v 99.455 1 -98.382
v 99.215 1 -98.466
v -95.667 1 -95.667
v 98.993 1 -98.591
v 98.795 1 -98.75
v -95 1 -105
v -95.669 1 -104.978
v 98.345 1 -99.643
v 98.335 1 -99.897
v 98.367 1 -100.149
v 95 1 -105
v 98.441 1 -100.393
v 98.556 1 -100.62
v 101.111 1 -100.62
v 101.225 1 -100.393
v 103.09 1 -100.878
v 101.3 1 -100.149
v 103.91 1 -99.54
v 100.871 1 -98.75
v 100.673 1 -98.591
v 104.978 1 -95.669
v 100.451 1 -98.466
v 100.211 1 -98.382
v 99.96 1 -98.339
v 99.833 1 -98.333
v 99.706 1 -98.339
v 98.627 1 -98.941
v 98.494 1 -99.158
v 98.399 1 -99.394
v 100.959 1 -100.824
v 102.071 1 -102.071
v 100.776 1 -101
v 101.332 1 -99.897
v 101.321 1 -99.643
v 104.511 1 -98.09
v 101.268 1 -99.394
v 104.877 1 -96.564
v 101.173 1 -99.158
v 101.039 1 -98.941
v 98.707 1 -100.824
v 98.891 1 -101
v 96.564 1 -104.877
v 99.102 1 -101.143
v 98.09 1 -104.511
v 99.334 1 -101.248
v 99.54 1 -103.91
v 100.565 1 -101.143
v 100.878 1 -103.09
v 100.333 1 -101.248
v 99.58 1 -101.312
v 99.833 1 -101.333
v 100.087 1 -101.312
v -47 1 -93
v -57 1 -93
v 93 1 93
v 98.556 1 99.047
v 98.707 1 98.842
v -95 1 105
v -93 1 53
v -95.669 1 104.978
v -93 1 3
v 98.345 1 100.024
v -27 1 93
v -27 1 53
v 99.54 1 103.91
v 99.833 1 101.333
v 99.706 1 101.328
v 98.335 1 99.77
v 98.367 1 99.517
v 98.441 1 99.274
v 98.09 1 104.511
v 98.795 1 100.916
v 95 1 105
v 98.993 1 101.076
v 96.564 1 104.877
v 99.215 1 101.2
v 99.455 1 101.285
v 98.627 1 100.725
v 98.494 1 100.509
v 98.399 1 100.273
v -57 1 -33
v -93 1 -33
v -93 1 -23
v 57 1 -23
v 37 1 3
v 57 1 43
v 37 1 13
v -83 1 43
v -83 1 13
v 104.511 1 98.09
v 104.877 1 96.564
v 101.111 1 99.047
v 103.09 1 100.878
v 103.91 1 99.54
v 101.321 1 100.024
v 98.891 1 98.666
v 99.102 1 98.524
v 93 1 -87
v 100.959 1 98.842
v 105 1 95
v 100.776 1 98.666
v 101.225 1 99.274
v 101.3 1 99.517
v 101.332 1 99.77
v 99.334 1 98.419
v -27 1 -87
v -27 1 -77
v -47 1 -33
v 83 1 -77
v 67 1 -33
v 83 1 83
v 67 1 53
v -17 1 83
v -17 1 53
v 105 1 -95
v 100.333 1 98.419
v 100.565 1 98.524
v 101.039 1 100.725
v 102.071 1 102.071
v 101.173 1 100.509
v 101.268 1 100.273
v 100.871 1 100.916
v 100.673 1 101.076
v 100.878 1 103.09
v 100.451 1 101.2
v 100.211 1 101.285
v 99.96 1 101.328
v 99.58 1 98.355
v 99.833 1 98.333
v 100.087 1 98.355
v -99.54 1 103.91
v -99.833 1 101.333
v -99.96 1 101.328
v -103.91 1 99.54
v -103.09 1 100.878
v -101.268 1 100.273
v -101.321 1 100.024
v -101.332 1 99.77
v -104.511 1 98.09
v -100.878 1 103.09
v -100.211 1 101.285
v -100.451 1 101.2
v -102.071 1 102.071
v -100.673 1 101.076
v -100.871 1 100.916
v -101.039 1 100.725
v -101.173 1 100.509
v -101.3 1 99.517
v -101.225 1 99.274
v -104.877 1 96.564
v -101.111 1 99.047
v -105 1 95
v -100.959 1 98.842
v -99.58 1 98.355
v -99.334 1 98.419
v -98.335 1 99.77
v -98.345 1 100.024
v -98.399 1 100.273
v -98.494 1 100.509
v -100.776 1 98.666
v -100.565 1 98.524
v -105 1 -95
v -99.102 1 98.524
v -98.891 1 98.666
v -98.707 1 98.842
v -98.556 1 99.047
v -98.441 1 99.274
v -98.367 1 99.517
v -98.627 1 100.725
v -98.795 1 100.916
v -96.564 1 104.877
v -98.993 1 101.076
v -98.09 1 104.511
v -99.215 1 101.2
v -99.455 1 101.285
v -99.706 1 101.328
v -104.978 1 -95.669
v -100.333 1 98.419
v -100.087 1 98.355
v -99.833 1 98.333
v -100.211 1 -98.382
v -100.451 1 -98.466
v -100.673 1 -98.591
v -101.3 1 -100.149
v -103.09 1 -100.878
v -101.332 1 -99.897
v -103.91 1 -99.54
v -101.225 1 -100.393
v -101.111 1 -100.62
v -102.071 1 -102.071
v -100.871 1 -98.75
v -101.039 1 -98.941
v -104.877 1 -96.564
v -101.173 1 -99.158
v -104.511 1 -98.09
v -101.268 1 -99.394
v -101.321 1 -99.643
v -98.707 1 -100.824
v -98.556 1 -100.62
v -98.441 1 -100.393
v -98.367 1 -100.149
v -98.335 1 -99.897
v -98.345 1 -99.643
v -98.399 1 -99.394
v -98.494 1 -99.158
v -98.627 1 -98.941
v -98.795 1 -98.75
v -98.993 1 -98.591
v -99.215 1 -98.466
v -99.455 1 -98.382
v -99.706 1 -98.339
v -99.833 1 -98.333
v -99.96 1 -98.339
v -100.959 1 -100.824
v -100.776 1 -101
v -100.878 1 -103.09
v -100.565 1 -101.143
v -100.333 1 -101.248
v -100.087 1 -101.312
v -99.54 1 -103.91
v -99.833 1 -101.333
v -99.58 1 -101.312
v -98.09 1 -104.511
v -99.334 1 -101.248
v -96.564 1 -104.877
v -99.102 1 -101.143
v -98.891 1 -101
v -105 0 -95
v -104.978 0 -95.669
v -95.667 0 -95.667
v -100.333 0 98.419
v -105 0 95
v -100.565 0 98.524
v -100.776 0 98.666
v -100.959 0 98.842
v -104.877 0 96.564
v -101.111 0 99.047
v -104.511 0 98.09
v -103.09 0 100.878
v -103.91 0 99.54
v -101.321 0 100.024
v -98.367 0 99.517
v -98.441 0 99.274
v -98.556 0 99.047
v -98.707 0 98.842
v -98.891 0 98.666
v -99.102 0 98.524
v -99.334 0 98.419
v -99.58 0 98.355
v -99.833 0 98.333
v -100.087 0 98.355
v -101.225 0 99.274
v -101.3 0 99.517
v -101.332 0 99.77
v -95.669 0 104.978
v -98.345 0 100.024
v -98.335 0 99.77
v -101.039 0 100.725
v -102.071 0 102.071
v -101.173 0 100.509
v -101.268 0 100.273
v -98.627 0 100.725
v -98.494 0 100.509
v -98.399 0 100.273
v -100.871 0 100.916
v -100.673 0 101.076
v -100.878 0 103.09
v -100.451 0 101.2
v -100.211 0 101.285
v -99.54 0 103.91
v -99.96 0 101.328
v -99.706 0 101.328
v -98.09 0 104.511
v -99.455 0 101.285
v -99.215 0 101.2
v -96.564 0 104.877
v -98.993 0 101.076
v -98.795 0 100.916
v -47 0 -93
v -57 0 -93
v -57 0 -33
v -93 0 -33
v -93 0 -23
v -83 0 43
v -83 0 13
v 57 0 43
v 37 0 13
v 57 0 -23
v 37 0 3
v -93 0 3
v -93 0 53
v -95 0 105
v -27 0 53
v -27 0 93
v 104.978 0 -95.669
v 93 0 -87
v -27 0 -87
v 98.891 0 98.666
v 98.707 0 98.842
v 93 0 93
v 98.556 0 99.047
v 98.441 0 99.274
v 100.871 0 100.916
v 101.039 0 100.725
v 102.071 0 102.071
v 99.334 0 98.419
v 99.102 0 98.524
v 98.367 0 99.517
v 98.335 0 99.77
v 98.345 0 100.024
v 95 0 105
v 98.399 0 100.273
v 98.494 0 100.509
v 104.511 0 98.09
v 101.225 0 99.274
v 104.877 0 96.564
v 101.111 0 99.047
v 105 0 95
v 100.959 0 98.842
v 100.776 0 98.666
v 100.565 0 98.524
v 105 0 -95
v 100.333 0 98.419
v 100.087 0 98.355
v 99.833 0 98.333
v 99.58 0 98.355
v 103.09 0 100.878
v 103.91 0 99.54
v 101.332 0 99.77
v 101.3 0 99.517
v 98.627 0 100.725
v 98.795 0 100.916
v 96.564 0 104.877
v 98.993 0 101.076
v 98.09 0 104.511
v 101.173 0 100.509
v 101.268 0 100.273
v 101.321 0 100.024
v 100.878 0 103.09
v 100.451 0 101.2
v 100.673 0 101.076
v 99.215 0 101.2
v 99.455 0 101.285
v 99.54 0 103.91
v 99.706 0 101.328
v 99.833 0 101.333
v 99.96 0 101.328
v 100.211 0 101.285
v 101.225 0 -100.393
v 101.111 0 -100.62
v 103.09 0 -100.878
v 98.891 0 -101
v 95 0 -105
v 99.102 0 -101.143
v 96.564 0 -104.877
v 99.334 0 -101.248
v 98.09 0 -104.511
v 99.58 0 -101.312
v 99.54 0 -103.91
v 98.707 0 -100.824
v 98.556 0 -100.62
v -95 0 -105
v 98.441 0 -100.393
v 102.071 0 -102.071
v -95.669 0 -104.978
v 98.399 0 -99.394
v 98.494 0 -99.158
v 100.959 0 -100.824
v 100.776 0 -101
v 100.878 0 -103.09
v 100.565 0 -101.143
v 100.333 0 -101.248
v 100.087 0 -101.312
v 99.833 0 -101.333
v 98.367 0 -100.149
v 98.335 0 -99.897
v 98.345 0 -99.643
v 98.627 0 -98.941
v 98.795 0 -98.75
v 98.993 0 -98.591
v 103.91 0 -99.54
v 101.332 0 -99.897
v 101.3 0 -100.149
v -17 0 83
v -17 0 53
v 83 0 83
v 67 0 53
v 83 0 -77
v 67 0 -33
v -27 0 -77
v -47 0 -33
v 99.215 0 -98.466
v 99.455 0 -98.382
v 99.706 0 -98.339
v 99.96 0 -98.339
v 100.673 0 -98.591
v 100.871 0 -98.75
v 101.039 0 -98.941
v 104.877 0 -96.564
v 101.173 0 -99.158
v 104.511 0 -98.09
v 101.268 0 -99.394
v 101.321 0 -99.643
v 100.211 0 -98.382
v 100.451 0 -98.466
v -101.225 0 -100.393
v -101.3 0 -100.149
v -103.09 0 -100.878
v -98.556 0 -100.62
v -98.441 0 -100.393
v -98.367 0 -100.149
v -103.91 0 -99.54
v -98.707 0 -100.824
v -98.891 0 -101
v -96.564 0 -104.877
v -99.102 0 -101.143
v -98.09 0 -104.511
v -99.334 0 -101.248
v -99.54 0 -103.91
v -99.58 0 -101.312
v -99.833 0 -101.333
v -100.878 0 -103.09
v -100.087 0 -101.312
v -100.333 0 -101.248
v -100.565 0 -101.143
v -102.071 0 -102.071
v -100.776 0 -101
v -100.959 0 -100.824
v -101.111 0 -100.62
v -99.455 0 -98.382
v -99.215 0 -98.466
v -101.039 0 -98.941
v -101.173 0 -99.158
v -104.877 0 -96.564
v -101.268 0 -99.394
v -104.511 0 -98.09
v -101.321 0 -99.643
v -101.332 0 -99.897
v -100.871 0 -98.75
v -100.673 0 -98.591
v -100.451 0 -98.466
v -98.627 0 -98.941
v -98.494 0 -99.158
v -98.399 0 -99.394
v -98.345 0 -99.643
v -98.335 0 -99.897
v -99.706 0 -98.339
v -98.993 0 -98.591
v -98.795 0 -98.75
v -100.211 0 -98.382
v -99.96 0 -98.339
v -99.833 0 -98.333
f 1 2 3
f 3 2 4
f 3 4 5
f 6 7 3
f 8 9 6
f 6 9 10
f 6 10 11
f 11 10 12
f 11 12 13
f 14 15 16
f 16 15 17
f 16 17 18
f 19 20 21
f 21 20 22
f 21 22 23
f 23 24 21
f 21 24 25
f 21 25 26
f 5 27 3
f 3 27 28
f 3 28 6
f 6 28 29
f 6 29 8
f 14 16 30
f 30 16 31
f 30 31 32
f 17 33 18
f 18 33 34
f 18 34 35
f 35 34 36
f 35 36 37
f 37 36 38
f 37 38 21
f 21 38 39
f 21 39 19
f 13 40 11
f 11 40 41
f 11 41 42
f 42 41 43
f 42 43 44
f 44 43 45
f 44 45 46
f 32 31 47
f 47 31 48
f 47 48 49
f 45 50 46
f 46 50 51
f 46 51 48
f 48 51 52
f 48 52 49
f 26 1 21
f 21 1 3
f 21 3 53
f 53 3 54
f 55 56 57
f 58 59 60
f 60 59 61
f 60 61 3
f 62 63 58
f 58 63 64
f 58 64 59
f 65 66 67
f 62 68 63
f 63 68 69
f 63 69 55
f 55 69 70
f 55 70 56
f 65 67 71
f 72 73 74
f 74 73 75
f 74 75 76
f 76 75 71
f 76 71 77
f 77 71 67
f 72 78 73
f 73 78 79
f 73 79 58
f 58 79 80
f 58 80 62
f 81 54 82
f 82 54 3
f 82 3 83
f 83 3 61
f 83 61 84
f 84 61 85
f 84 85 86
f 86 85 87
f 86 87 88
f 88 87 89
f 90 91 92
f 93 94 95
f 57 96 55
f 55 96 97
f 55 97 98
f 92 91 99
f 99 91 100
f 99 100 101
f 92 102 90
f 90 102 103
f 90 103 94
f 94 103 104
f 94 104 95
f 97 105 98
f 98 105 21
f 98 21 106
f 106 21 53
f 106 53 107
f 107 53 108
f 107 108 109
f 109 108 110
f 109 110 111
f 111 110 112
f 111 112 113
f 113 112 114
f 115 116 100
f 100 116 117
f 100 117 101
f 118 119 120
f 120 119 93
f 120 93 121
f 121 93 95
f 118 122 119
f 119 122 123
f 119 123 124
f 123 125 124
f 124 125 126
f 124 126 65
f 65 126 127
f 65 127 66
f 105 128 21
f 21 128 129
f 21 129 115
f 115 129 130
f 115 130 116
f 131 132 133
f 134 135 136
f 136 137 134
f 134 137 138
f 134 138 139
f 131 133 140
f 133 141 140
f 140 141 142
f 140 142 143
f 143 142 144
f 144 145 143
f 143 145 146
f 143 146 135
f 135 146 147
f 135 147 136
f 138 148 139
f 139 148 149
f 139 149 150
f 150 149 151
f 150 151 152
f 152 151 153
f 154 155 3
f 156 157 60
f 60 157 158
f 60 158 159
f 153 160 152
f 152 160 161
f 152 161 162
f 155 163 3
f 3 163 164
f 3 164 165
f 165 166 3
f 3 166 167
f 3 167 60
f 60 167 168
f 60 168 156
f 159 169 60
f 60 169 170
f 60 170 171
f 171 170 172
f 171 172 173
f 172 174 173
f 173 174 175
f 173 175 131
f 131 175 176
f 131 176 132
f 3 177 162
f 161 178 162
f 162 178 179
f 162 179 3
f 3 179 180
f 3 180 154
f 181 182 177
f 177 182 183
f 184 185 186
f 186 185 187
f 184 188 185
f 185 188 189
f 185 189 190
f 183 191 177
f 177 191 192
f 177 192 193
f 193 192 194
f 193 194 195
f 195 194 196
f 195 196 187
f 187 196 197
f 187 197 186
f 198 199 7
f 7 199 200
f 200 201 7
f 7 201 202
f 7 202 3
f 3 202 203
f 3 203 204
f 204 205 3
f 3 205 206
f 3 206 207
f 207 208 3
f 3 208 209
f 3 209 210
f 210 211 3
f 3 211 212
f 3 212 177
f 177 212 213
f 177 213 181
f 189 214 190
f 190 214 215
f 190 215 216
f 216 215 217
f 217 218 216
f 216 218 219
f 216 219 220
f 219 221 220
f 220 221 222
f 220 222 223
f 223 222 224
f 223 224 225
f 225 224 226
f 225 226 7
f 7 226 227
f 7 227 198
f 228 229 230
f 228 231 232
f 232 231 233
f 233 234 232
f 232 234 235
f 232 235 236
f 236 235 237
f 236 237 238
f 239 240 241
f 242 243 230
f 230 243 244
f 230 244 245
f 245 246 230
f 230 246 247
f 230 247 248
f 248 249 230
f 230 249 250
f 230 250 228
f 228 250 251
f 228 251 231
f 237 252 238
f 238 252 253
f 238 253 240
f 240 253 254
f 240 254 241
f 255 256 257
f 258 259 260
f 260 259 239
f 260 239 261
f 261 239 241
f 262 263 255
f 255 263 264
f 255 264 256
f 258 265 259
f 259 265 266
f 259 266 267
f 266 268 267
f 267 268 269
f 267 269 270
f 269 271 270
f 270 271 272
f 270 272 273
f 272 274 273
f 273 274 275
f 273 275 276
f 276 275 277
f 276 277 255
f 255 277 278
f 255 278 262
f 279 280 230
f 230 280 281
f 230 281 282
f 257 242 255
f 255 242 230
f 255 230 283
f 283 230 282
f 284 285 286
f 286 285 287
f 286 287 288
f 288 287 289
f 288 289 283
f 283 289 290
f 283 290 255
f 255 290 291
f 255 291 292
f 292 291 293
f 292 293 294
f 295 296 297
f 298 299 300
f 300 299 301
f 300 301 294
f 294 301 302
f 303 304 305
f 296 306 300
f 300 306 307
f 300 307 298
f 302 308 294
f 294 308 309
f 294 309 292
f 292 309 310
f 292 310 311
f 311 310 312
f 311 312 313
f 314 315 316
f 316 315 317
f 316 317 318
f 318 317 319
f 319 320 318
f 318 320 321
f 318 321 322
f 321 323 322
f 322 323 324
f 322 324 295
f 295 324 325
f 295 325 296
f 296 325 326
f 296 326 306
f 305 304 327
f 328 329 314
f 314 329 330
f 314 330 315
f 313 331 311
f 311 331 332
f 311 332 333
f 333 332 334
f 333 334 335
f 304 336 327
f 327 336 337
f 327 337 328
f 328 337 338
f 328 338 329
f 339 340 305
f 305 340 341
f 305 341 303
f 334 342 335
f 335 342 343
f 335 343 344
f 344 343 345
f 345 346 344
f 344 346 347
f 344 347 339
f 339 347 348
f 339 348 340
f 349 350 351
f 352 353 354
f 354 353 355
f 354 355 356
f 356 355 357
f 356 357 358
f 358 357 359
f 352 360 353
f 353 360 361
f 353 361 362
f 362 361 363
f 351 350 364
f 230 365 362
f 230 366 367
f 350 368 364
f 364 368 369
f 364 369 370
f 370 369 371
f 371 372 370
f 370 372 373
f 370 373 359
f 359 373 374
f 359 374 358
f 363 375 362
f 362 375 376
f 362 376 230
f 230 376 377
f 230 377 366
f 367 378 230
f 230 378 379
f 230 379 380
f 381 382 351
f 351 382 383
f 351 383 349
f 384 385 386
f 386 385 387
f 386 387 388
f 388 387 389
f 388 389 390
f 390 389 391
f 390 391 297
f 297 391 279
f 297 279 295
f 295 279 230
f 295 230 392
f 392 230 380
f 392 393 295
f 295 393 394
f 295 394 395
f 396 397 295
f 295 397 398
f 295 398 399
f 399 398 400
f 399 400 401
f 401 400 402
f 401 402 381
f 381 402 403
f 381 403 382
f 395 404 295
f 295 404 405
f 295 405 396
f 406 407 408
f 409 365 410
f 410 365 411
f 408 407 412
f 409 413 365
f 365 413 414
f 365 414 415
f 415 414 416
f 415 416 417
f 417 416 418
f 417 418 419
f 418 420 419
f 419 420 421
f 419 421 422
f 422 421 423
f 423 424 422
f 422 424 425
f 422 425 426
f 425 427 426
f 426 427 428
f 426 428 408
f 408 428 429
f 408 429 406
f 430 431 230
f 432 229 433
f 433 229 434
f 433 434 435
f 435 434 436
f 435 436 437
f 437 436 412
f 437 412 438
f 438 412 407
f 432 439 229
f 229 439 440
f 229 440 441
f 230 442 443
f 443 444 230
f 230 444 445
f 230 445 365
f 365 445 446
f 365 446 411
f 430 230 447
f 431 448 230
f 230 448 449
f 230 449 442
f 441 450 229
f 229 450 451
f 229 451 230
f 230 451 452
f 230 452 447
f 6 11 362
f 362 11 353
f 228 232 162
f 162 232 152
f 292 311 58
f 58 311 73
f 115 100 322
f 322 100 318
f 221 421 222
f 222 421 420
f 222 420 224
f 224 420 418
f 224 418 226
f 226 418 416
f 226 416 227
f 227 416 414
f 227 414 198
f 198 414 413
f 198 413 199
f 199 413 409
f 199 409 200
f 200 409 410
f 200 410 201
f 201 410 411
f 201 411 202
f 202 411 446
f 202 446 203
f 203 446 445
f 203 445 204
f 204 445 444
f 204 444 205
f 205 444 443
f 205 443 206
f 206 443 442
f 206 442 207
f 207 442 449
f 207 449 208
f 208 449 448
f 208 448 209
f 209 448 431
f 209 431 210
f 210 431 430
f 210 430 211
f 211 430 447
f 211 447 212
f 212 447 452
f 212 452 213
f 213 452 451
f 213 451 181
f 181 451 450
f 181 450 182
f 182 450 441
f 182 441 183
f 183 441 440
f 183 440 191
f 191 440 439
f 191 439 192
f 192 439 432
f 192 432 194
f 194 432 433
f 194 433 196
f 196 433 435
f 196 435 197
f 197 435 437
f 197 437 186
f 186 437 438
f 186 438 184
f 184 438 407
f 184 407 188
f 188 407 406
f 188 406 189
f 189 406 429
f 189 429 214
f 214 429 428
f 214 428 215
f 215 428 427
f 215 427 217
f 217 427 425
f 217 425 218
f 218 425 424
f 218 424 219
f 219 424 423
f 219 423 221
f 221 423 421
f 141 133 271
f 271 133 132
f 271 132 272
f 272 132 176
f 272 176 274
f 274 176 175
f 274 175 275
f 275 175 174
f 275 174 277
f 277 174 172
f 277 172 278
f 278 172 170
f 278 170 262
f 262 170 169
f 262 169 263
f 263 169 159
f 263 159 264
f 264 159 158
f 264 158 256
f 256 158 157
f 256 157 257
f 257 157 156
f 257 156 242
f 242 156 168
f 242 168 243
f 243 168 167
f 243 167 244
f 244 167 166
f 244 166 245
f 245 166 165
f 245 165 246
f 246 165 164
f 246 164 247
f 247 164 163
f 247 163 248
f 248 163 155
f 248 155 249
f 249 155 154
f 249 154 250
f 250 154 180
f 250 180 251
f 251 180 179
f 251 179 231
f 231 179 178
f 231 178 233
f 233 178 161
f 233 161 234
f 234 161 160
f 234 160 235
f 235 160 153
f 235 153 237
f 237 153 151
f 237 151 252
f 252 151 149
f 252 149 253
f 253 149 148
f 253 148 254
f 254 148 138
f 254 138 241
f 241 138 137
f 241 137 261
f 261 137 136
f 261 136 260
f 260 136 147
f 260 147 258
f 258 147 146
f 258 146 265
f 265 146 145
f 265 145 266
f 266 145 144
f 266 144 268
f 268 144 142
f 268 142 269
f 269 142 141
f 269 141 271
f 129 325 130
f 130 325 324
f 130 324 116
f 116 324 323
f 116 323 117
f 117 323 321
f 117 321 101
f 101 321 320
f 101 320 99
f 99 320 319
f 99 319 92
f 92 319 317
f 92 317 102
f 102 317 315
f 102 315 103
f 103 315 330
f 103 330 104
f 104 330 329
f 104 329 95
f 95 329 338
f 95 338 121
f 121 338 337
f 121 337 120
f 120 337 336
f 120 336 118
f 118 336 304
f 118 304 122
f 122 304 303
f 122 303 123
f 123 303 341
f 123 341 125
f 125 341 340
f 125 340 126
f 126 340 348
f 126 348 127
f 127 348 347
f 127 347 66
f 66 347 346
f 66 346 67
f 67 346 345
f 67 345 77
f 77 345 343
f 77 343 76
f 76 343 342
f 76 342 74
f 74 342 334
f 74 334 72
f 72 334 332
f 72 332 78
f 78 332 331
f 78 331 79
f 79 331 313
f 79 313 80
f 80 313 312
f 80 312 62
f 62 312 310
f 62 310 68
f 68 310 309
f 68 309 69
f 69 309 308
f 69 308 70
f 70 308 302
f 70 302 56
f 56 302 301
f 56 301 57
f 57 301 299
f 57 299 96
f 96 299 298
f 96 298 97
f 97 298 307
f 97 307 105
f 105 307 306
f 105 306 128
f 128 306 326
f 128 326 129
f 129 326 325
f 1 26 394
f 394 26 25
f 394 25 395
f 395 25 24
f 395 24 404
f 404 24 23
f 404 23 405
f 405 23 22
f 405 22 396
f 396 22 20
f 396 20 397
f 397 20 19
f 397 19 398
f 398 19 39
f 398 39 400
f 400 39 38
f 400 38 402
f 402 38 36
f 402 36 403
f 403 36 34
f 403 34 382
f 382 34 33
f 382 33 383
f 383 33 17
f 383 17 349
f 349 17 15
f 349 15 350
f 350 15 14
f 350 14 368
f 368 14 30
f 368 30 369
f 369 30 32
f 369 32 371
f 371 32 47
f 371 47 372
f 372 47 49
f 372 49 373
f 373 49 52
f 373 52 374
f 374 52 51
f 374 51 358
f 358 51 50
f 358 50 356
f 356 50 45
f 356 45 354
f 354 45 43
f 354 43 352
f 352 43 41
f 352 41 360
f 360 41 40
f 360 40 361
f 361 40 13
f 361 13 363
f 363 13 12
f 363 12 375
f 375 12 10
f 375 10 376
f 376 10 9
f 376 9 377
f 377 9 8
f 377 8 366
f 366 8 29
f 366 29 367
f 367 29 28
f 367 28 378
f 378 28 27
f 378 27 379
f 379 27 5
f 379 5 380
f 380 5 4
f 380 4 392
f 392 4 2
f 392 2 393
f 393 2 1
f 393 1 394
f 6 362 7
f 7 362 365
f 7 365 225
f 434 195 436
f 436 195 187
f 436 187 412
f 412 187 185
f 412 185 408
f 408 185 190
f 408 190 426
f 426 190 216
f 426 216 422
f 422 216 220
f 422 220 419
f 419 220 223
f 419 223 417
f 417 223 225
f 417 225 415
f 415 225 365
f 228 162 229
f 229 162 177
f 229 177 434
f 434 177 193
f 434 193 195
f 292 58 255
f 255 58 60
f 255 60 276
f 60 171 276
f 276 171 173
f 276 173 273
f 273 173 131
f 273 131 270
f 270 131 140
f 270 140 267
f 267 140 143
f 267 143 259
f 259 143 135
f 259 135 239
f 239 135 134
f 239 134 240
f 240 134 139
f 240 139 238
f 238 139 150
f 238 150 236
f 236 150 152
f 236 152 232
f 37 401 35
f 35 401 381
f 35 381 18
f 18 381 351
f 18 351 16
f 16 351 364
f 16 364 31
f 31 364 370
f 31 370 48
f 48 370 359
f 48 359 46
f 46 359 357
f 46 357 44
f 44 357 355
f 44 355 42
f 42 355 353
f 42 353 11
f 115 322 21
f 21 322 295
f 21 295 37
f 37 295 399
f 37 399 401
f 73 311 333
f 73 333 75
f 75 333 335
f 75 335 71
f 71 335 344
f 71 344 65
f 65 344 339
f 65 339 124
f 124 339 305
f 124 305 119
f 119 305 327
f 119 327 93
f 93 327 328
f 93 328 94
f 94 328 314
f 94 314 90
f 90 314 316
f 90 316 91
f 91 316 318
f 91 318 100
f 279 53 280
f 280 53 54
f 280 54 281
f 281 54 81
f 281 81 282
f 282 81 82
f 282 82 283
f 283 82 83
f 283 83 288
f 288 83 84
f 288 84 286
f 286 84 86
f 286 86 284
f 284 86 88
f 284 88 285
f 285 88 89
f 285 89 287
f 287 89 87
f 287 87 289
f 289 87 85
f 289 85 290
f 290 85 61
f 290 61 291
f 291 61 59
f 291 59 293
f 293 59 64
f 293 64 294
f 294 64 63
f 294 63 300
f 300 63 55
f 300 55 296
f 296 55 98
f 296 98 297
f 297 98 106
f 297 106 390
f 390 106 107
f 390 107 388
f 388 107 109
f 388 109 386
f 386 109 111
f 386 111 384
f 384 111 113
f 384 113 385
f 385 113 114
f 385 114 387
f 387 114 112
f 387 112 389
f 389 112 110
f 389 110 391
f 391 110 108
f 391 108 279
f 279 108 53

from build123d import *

# Parameters (mm, degrees)
SKETCH1_W         = 210
SKETCH1_H         = 210
MAINEXTRUDE_DEPTH = 1
SKETCH1_6_R       = 1.5
SCREWHOLES_DEPTH  = 1
ROUNDEDCORNERS_R  = 10
TRENCH_DEPTH      = 12


with BuildPart() as part:
    # Sketch1 → MainExtrude (new body)
    with BuildSketch(Plane(origin=(0, 0, 0), x_dir=(1, 0, 0), z_dir=(0, 1, 0))):
        Rectangle(SKETCH1_W, SKETCH1_H)
    extrude(amount=MAINEXTRUDE_DEPTH)

    # Sketch1<6> → ScrewHoles (cut)
    with BuildSketch(Plane(origin=(0, 0, 0), x_dir=(1, 0, 0), z_dir=(0, 1, 0))):
        with Locations(Location((-99.833273811, 99.833273811, 0), (0, 0, 270))):
            Circle(SKETCH1_6_R)
        with Locations(Location((-99.833273811, -99.833273811, 0), (0, 0, 90))):
            Circle(SKETCH1_6_R)
        with Locations(Location((99.833273811, -99.833273811, 0), (0, 0, 270))):
            Circle(SKETCH1_6_R)
        with Locations(Location((99.833273811, 99.833273811, 0), (0, 0, 90))):
            Circle(SKETCH1_6_R)
    extrude(amount=SCREWHOLES_DEPTH, mode=Mode.SUBTRACT)

    # RoundedCorners
    roundedcorners_edges = [part.edges().sort_by_distance(p)[0] for p in [
        (-105, 0.5, -105),
        (-105, 0.5, 105),
        (105, 0.5, 105),
        (105, 0.5, -105),
    ]]
    fillet(roundedcorners_edges, radius=ROUNDEDCORNERS_R)

    # Sketch3 → Trench (cut)
    with BuildSketch(Plane(origin=(0, 0, 0), x_dir=(1, 0, 0), z_dir=(0, 1, 0))):
        Polygon((-57, 93), (-57, 33), (-93, 33), (-93, 23), (57, 23), (57, -43), (-83, -43), (-83, -13), (37, -13), (37, -3), (-93, -3), (-93, -53), (-27, -53), (-27, -93), (93, -93), (93, 87), (-27, 87), (-27, 77), (83, 77), (83, -83), (-17, -83), (-17, -53), (67, -53), (67, 33), (-47, 33), (-47, 93), align=None)
    extrude(amount=TRENCH_DEPTH, mode=Mode.SUBTRACT)


solid = part.part
